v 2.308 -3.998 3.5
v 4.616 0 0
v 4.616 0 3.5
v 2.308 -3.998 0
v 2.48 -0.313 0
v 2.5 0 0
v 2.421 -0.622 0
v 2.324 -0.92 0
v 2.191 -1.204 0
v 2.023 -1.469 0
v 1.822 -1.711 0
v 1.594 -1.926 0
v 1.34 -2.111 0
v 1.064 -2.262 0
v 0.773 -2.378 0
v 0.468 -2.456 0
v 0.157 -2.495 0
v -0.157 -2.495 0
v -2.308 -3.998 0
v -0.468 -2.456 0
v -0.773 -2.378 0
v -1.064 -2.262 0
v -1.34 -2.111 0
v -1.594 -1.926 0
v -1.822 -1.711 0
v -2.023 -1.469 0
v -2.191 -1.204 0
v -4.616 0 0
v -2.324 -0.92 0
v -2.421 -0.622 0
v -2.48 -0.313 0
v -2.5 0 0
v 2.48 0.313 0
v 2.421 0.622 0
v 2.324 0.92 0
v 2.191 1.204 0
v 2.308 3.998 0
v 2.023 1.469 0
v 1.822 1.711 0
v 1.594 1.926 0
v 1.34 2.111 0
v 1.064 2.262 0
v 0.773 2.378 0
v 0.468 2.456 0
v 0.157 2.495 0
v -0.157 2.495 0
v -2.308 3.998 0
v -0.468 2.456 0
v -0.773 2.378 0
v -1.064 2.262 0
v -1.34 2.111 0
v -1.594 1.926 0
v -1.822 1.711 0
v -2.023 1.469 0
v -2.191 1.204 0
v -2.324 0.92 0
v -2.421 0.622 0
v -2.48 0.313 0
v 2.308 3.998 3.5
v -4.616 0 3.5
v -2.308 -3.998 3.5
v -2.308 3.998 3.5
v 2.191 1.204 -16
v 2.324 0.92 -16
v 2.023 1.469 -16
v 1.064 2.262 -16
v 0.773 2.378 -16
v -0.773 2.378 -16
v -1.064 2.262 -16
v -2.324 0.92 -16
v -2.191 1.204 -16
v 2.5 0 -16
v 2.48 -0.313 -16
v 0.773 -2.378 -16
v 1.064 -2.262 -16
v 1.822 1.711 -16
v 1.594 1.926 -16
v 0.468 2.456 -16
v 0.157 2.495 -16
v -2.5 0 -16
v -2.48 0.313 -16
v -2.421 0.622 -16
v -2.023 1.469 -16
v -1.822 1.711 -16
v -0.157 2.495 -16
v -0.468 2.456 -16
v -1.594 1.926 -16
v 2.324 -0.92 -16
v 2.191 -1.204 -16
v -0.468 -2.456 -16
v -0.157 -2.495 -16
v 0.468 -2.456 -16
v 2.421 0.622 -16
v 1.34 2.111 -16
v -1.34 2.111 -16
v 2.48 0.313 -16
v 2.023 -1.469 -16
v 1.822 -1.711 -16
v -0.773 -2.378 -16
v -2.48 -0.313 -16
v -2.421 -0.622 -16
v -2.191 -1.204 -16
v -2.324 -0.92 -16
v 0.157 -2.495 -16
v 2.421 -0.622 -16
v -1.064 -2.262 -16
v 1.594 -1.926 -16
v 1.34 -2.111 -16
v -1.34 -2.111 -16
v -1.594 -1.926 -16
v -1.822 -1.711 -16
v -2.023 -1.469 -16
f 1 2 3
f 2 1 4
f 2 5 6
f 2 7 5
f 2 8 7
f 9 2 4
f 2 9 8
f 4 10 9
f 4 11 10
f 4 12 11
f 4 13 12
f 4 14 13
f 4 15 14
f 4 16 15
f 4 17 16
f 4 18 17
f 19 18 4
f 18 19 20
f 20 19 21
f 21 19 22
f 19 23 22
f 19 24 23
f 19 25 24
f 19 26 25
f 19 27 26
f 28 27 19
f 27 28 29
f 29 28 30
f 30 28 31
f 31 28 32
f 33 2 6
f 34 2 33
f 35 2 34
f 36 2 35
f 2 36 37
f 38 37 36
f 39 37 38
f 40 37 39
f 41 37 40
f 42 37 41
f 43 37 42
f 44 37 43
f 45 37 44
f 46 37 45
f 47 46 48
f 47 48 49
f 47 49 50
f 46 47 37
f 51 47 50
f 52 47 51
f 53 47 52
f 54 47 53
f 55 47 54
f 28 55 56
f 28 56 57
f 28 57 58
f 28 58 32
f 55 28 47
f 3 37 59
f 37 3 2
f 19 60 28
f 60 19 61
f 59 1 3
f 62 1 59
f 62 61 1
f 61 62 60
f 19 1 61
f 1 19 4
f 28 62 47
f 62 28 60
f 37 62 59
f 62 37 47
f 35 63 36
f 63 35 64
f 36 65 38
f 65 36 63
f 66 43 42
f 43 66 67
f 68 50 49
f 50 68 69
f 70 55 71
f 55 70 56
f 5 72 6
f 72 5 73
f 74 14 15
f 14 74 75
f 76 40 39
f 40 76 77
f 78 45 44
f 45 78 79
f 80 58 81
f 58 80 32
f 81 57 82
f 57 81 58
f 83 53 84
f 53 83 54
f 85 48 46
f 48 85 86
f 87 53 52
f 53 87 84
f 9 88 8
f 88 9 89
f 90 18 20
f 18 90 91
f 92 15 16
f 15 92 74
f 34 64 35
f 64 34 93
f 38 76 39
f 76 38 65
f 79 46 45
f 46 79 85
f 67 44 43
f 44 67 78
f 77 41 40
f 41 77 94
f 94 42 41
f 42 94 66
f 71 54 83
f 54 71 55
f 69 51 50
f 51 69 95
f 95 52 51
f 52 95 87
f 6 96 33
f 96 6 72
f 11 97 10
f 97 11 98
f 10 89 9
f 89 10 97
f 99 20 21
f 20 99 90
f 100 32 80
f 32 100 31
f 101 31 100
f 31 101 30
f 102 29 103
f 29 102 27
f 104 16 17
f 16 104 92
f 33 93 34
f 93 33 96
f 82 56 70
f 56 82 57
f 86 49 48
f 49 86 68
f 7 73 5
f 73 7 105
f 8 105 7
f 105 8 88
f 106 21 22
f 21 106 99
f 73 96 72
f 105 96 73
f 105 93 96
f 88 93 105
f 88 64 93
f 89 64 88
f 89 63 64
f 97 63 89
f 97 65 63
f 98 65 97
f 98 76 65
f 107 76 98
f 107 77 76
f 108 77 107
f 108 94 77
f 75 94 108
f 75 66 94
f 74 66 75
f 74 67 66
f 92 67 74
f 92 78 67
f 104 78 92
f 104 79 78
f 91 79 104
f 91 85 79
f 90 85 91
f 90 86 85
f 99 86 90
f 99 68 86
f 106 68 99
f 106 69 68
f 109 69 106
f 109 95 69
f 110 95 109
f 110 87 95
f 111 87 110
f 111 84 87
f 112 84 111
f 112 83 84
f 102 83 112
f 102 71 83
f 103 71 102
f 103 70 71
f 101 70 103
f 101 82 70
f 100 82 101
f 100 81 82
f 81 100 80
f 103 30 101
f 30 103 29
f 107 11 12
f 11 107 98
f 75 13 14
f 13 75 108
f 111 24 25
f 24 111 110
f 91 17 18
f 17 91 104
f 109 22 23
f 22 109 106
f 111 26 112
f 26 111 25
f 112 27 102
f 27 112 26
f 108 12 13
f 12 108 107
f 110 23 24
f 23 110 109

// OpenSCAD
$fn = 50;


difference() {
	union() {
		translate(v = [0, 0, 0]) {
			rotate(a = [0, 0, 0]) {
				translate(v = [0, 0, 0]) {
					rotate(a = [0, 0, 0]) {
						linear_extrude(height = 3.5000000000) {
							polygon(points = [[4.6160000000, 0.0000000000], [2.3080000000, 3.9975732639], [-2.3080000000, 3.9975732639], [-4.6160000000, 0.0000000000], [-2.3080000000, -3.9975732639], [2.3080000000, -3.9975732639]]);
						}
					}
				}
			}
		}
		translate(v = [0, 0, -16]) {
			rotate(a = [0, 0, 0]) {
				cylinder(h = 16, r = 2.5000000000);
			}
		}
	}
	union();
}
